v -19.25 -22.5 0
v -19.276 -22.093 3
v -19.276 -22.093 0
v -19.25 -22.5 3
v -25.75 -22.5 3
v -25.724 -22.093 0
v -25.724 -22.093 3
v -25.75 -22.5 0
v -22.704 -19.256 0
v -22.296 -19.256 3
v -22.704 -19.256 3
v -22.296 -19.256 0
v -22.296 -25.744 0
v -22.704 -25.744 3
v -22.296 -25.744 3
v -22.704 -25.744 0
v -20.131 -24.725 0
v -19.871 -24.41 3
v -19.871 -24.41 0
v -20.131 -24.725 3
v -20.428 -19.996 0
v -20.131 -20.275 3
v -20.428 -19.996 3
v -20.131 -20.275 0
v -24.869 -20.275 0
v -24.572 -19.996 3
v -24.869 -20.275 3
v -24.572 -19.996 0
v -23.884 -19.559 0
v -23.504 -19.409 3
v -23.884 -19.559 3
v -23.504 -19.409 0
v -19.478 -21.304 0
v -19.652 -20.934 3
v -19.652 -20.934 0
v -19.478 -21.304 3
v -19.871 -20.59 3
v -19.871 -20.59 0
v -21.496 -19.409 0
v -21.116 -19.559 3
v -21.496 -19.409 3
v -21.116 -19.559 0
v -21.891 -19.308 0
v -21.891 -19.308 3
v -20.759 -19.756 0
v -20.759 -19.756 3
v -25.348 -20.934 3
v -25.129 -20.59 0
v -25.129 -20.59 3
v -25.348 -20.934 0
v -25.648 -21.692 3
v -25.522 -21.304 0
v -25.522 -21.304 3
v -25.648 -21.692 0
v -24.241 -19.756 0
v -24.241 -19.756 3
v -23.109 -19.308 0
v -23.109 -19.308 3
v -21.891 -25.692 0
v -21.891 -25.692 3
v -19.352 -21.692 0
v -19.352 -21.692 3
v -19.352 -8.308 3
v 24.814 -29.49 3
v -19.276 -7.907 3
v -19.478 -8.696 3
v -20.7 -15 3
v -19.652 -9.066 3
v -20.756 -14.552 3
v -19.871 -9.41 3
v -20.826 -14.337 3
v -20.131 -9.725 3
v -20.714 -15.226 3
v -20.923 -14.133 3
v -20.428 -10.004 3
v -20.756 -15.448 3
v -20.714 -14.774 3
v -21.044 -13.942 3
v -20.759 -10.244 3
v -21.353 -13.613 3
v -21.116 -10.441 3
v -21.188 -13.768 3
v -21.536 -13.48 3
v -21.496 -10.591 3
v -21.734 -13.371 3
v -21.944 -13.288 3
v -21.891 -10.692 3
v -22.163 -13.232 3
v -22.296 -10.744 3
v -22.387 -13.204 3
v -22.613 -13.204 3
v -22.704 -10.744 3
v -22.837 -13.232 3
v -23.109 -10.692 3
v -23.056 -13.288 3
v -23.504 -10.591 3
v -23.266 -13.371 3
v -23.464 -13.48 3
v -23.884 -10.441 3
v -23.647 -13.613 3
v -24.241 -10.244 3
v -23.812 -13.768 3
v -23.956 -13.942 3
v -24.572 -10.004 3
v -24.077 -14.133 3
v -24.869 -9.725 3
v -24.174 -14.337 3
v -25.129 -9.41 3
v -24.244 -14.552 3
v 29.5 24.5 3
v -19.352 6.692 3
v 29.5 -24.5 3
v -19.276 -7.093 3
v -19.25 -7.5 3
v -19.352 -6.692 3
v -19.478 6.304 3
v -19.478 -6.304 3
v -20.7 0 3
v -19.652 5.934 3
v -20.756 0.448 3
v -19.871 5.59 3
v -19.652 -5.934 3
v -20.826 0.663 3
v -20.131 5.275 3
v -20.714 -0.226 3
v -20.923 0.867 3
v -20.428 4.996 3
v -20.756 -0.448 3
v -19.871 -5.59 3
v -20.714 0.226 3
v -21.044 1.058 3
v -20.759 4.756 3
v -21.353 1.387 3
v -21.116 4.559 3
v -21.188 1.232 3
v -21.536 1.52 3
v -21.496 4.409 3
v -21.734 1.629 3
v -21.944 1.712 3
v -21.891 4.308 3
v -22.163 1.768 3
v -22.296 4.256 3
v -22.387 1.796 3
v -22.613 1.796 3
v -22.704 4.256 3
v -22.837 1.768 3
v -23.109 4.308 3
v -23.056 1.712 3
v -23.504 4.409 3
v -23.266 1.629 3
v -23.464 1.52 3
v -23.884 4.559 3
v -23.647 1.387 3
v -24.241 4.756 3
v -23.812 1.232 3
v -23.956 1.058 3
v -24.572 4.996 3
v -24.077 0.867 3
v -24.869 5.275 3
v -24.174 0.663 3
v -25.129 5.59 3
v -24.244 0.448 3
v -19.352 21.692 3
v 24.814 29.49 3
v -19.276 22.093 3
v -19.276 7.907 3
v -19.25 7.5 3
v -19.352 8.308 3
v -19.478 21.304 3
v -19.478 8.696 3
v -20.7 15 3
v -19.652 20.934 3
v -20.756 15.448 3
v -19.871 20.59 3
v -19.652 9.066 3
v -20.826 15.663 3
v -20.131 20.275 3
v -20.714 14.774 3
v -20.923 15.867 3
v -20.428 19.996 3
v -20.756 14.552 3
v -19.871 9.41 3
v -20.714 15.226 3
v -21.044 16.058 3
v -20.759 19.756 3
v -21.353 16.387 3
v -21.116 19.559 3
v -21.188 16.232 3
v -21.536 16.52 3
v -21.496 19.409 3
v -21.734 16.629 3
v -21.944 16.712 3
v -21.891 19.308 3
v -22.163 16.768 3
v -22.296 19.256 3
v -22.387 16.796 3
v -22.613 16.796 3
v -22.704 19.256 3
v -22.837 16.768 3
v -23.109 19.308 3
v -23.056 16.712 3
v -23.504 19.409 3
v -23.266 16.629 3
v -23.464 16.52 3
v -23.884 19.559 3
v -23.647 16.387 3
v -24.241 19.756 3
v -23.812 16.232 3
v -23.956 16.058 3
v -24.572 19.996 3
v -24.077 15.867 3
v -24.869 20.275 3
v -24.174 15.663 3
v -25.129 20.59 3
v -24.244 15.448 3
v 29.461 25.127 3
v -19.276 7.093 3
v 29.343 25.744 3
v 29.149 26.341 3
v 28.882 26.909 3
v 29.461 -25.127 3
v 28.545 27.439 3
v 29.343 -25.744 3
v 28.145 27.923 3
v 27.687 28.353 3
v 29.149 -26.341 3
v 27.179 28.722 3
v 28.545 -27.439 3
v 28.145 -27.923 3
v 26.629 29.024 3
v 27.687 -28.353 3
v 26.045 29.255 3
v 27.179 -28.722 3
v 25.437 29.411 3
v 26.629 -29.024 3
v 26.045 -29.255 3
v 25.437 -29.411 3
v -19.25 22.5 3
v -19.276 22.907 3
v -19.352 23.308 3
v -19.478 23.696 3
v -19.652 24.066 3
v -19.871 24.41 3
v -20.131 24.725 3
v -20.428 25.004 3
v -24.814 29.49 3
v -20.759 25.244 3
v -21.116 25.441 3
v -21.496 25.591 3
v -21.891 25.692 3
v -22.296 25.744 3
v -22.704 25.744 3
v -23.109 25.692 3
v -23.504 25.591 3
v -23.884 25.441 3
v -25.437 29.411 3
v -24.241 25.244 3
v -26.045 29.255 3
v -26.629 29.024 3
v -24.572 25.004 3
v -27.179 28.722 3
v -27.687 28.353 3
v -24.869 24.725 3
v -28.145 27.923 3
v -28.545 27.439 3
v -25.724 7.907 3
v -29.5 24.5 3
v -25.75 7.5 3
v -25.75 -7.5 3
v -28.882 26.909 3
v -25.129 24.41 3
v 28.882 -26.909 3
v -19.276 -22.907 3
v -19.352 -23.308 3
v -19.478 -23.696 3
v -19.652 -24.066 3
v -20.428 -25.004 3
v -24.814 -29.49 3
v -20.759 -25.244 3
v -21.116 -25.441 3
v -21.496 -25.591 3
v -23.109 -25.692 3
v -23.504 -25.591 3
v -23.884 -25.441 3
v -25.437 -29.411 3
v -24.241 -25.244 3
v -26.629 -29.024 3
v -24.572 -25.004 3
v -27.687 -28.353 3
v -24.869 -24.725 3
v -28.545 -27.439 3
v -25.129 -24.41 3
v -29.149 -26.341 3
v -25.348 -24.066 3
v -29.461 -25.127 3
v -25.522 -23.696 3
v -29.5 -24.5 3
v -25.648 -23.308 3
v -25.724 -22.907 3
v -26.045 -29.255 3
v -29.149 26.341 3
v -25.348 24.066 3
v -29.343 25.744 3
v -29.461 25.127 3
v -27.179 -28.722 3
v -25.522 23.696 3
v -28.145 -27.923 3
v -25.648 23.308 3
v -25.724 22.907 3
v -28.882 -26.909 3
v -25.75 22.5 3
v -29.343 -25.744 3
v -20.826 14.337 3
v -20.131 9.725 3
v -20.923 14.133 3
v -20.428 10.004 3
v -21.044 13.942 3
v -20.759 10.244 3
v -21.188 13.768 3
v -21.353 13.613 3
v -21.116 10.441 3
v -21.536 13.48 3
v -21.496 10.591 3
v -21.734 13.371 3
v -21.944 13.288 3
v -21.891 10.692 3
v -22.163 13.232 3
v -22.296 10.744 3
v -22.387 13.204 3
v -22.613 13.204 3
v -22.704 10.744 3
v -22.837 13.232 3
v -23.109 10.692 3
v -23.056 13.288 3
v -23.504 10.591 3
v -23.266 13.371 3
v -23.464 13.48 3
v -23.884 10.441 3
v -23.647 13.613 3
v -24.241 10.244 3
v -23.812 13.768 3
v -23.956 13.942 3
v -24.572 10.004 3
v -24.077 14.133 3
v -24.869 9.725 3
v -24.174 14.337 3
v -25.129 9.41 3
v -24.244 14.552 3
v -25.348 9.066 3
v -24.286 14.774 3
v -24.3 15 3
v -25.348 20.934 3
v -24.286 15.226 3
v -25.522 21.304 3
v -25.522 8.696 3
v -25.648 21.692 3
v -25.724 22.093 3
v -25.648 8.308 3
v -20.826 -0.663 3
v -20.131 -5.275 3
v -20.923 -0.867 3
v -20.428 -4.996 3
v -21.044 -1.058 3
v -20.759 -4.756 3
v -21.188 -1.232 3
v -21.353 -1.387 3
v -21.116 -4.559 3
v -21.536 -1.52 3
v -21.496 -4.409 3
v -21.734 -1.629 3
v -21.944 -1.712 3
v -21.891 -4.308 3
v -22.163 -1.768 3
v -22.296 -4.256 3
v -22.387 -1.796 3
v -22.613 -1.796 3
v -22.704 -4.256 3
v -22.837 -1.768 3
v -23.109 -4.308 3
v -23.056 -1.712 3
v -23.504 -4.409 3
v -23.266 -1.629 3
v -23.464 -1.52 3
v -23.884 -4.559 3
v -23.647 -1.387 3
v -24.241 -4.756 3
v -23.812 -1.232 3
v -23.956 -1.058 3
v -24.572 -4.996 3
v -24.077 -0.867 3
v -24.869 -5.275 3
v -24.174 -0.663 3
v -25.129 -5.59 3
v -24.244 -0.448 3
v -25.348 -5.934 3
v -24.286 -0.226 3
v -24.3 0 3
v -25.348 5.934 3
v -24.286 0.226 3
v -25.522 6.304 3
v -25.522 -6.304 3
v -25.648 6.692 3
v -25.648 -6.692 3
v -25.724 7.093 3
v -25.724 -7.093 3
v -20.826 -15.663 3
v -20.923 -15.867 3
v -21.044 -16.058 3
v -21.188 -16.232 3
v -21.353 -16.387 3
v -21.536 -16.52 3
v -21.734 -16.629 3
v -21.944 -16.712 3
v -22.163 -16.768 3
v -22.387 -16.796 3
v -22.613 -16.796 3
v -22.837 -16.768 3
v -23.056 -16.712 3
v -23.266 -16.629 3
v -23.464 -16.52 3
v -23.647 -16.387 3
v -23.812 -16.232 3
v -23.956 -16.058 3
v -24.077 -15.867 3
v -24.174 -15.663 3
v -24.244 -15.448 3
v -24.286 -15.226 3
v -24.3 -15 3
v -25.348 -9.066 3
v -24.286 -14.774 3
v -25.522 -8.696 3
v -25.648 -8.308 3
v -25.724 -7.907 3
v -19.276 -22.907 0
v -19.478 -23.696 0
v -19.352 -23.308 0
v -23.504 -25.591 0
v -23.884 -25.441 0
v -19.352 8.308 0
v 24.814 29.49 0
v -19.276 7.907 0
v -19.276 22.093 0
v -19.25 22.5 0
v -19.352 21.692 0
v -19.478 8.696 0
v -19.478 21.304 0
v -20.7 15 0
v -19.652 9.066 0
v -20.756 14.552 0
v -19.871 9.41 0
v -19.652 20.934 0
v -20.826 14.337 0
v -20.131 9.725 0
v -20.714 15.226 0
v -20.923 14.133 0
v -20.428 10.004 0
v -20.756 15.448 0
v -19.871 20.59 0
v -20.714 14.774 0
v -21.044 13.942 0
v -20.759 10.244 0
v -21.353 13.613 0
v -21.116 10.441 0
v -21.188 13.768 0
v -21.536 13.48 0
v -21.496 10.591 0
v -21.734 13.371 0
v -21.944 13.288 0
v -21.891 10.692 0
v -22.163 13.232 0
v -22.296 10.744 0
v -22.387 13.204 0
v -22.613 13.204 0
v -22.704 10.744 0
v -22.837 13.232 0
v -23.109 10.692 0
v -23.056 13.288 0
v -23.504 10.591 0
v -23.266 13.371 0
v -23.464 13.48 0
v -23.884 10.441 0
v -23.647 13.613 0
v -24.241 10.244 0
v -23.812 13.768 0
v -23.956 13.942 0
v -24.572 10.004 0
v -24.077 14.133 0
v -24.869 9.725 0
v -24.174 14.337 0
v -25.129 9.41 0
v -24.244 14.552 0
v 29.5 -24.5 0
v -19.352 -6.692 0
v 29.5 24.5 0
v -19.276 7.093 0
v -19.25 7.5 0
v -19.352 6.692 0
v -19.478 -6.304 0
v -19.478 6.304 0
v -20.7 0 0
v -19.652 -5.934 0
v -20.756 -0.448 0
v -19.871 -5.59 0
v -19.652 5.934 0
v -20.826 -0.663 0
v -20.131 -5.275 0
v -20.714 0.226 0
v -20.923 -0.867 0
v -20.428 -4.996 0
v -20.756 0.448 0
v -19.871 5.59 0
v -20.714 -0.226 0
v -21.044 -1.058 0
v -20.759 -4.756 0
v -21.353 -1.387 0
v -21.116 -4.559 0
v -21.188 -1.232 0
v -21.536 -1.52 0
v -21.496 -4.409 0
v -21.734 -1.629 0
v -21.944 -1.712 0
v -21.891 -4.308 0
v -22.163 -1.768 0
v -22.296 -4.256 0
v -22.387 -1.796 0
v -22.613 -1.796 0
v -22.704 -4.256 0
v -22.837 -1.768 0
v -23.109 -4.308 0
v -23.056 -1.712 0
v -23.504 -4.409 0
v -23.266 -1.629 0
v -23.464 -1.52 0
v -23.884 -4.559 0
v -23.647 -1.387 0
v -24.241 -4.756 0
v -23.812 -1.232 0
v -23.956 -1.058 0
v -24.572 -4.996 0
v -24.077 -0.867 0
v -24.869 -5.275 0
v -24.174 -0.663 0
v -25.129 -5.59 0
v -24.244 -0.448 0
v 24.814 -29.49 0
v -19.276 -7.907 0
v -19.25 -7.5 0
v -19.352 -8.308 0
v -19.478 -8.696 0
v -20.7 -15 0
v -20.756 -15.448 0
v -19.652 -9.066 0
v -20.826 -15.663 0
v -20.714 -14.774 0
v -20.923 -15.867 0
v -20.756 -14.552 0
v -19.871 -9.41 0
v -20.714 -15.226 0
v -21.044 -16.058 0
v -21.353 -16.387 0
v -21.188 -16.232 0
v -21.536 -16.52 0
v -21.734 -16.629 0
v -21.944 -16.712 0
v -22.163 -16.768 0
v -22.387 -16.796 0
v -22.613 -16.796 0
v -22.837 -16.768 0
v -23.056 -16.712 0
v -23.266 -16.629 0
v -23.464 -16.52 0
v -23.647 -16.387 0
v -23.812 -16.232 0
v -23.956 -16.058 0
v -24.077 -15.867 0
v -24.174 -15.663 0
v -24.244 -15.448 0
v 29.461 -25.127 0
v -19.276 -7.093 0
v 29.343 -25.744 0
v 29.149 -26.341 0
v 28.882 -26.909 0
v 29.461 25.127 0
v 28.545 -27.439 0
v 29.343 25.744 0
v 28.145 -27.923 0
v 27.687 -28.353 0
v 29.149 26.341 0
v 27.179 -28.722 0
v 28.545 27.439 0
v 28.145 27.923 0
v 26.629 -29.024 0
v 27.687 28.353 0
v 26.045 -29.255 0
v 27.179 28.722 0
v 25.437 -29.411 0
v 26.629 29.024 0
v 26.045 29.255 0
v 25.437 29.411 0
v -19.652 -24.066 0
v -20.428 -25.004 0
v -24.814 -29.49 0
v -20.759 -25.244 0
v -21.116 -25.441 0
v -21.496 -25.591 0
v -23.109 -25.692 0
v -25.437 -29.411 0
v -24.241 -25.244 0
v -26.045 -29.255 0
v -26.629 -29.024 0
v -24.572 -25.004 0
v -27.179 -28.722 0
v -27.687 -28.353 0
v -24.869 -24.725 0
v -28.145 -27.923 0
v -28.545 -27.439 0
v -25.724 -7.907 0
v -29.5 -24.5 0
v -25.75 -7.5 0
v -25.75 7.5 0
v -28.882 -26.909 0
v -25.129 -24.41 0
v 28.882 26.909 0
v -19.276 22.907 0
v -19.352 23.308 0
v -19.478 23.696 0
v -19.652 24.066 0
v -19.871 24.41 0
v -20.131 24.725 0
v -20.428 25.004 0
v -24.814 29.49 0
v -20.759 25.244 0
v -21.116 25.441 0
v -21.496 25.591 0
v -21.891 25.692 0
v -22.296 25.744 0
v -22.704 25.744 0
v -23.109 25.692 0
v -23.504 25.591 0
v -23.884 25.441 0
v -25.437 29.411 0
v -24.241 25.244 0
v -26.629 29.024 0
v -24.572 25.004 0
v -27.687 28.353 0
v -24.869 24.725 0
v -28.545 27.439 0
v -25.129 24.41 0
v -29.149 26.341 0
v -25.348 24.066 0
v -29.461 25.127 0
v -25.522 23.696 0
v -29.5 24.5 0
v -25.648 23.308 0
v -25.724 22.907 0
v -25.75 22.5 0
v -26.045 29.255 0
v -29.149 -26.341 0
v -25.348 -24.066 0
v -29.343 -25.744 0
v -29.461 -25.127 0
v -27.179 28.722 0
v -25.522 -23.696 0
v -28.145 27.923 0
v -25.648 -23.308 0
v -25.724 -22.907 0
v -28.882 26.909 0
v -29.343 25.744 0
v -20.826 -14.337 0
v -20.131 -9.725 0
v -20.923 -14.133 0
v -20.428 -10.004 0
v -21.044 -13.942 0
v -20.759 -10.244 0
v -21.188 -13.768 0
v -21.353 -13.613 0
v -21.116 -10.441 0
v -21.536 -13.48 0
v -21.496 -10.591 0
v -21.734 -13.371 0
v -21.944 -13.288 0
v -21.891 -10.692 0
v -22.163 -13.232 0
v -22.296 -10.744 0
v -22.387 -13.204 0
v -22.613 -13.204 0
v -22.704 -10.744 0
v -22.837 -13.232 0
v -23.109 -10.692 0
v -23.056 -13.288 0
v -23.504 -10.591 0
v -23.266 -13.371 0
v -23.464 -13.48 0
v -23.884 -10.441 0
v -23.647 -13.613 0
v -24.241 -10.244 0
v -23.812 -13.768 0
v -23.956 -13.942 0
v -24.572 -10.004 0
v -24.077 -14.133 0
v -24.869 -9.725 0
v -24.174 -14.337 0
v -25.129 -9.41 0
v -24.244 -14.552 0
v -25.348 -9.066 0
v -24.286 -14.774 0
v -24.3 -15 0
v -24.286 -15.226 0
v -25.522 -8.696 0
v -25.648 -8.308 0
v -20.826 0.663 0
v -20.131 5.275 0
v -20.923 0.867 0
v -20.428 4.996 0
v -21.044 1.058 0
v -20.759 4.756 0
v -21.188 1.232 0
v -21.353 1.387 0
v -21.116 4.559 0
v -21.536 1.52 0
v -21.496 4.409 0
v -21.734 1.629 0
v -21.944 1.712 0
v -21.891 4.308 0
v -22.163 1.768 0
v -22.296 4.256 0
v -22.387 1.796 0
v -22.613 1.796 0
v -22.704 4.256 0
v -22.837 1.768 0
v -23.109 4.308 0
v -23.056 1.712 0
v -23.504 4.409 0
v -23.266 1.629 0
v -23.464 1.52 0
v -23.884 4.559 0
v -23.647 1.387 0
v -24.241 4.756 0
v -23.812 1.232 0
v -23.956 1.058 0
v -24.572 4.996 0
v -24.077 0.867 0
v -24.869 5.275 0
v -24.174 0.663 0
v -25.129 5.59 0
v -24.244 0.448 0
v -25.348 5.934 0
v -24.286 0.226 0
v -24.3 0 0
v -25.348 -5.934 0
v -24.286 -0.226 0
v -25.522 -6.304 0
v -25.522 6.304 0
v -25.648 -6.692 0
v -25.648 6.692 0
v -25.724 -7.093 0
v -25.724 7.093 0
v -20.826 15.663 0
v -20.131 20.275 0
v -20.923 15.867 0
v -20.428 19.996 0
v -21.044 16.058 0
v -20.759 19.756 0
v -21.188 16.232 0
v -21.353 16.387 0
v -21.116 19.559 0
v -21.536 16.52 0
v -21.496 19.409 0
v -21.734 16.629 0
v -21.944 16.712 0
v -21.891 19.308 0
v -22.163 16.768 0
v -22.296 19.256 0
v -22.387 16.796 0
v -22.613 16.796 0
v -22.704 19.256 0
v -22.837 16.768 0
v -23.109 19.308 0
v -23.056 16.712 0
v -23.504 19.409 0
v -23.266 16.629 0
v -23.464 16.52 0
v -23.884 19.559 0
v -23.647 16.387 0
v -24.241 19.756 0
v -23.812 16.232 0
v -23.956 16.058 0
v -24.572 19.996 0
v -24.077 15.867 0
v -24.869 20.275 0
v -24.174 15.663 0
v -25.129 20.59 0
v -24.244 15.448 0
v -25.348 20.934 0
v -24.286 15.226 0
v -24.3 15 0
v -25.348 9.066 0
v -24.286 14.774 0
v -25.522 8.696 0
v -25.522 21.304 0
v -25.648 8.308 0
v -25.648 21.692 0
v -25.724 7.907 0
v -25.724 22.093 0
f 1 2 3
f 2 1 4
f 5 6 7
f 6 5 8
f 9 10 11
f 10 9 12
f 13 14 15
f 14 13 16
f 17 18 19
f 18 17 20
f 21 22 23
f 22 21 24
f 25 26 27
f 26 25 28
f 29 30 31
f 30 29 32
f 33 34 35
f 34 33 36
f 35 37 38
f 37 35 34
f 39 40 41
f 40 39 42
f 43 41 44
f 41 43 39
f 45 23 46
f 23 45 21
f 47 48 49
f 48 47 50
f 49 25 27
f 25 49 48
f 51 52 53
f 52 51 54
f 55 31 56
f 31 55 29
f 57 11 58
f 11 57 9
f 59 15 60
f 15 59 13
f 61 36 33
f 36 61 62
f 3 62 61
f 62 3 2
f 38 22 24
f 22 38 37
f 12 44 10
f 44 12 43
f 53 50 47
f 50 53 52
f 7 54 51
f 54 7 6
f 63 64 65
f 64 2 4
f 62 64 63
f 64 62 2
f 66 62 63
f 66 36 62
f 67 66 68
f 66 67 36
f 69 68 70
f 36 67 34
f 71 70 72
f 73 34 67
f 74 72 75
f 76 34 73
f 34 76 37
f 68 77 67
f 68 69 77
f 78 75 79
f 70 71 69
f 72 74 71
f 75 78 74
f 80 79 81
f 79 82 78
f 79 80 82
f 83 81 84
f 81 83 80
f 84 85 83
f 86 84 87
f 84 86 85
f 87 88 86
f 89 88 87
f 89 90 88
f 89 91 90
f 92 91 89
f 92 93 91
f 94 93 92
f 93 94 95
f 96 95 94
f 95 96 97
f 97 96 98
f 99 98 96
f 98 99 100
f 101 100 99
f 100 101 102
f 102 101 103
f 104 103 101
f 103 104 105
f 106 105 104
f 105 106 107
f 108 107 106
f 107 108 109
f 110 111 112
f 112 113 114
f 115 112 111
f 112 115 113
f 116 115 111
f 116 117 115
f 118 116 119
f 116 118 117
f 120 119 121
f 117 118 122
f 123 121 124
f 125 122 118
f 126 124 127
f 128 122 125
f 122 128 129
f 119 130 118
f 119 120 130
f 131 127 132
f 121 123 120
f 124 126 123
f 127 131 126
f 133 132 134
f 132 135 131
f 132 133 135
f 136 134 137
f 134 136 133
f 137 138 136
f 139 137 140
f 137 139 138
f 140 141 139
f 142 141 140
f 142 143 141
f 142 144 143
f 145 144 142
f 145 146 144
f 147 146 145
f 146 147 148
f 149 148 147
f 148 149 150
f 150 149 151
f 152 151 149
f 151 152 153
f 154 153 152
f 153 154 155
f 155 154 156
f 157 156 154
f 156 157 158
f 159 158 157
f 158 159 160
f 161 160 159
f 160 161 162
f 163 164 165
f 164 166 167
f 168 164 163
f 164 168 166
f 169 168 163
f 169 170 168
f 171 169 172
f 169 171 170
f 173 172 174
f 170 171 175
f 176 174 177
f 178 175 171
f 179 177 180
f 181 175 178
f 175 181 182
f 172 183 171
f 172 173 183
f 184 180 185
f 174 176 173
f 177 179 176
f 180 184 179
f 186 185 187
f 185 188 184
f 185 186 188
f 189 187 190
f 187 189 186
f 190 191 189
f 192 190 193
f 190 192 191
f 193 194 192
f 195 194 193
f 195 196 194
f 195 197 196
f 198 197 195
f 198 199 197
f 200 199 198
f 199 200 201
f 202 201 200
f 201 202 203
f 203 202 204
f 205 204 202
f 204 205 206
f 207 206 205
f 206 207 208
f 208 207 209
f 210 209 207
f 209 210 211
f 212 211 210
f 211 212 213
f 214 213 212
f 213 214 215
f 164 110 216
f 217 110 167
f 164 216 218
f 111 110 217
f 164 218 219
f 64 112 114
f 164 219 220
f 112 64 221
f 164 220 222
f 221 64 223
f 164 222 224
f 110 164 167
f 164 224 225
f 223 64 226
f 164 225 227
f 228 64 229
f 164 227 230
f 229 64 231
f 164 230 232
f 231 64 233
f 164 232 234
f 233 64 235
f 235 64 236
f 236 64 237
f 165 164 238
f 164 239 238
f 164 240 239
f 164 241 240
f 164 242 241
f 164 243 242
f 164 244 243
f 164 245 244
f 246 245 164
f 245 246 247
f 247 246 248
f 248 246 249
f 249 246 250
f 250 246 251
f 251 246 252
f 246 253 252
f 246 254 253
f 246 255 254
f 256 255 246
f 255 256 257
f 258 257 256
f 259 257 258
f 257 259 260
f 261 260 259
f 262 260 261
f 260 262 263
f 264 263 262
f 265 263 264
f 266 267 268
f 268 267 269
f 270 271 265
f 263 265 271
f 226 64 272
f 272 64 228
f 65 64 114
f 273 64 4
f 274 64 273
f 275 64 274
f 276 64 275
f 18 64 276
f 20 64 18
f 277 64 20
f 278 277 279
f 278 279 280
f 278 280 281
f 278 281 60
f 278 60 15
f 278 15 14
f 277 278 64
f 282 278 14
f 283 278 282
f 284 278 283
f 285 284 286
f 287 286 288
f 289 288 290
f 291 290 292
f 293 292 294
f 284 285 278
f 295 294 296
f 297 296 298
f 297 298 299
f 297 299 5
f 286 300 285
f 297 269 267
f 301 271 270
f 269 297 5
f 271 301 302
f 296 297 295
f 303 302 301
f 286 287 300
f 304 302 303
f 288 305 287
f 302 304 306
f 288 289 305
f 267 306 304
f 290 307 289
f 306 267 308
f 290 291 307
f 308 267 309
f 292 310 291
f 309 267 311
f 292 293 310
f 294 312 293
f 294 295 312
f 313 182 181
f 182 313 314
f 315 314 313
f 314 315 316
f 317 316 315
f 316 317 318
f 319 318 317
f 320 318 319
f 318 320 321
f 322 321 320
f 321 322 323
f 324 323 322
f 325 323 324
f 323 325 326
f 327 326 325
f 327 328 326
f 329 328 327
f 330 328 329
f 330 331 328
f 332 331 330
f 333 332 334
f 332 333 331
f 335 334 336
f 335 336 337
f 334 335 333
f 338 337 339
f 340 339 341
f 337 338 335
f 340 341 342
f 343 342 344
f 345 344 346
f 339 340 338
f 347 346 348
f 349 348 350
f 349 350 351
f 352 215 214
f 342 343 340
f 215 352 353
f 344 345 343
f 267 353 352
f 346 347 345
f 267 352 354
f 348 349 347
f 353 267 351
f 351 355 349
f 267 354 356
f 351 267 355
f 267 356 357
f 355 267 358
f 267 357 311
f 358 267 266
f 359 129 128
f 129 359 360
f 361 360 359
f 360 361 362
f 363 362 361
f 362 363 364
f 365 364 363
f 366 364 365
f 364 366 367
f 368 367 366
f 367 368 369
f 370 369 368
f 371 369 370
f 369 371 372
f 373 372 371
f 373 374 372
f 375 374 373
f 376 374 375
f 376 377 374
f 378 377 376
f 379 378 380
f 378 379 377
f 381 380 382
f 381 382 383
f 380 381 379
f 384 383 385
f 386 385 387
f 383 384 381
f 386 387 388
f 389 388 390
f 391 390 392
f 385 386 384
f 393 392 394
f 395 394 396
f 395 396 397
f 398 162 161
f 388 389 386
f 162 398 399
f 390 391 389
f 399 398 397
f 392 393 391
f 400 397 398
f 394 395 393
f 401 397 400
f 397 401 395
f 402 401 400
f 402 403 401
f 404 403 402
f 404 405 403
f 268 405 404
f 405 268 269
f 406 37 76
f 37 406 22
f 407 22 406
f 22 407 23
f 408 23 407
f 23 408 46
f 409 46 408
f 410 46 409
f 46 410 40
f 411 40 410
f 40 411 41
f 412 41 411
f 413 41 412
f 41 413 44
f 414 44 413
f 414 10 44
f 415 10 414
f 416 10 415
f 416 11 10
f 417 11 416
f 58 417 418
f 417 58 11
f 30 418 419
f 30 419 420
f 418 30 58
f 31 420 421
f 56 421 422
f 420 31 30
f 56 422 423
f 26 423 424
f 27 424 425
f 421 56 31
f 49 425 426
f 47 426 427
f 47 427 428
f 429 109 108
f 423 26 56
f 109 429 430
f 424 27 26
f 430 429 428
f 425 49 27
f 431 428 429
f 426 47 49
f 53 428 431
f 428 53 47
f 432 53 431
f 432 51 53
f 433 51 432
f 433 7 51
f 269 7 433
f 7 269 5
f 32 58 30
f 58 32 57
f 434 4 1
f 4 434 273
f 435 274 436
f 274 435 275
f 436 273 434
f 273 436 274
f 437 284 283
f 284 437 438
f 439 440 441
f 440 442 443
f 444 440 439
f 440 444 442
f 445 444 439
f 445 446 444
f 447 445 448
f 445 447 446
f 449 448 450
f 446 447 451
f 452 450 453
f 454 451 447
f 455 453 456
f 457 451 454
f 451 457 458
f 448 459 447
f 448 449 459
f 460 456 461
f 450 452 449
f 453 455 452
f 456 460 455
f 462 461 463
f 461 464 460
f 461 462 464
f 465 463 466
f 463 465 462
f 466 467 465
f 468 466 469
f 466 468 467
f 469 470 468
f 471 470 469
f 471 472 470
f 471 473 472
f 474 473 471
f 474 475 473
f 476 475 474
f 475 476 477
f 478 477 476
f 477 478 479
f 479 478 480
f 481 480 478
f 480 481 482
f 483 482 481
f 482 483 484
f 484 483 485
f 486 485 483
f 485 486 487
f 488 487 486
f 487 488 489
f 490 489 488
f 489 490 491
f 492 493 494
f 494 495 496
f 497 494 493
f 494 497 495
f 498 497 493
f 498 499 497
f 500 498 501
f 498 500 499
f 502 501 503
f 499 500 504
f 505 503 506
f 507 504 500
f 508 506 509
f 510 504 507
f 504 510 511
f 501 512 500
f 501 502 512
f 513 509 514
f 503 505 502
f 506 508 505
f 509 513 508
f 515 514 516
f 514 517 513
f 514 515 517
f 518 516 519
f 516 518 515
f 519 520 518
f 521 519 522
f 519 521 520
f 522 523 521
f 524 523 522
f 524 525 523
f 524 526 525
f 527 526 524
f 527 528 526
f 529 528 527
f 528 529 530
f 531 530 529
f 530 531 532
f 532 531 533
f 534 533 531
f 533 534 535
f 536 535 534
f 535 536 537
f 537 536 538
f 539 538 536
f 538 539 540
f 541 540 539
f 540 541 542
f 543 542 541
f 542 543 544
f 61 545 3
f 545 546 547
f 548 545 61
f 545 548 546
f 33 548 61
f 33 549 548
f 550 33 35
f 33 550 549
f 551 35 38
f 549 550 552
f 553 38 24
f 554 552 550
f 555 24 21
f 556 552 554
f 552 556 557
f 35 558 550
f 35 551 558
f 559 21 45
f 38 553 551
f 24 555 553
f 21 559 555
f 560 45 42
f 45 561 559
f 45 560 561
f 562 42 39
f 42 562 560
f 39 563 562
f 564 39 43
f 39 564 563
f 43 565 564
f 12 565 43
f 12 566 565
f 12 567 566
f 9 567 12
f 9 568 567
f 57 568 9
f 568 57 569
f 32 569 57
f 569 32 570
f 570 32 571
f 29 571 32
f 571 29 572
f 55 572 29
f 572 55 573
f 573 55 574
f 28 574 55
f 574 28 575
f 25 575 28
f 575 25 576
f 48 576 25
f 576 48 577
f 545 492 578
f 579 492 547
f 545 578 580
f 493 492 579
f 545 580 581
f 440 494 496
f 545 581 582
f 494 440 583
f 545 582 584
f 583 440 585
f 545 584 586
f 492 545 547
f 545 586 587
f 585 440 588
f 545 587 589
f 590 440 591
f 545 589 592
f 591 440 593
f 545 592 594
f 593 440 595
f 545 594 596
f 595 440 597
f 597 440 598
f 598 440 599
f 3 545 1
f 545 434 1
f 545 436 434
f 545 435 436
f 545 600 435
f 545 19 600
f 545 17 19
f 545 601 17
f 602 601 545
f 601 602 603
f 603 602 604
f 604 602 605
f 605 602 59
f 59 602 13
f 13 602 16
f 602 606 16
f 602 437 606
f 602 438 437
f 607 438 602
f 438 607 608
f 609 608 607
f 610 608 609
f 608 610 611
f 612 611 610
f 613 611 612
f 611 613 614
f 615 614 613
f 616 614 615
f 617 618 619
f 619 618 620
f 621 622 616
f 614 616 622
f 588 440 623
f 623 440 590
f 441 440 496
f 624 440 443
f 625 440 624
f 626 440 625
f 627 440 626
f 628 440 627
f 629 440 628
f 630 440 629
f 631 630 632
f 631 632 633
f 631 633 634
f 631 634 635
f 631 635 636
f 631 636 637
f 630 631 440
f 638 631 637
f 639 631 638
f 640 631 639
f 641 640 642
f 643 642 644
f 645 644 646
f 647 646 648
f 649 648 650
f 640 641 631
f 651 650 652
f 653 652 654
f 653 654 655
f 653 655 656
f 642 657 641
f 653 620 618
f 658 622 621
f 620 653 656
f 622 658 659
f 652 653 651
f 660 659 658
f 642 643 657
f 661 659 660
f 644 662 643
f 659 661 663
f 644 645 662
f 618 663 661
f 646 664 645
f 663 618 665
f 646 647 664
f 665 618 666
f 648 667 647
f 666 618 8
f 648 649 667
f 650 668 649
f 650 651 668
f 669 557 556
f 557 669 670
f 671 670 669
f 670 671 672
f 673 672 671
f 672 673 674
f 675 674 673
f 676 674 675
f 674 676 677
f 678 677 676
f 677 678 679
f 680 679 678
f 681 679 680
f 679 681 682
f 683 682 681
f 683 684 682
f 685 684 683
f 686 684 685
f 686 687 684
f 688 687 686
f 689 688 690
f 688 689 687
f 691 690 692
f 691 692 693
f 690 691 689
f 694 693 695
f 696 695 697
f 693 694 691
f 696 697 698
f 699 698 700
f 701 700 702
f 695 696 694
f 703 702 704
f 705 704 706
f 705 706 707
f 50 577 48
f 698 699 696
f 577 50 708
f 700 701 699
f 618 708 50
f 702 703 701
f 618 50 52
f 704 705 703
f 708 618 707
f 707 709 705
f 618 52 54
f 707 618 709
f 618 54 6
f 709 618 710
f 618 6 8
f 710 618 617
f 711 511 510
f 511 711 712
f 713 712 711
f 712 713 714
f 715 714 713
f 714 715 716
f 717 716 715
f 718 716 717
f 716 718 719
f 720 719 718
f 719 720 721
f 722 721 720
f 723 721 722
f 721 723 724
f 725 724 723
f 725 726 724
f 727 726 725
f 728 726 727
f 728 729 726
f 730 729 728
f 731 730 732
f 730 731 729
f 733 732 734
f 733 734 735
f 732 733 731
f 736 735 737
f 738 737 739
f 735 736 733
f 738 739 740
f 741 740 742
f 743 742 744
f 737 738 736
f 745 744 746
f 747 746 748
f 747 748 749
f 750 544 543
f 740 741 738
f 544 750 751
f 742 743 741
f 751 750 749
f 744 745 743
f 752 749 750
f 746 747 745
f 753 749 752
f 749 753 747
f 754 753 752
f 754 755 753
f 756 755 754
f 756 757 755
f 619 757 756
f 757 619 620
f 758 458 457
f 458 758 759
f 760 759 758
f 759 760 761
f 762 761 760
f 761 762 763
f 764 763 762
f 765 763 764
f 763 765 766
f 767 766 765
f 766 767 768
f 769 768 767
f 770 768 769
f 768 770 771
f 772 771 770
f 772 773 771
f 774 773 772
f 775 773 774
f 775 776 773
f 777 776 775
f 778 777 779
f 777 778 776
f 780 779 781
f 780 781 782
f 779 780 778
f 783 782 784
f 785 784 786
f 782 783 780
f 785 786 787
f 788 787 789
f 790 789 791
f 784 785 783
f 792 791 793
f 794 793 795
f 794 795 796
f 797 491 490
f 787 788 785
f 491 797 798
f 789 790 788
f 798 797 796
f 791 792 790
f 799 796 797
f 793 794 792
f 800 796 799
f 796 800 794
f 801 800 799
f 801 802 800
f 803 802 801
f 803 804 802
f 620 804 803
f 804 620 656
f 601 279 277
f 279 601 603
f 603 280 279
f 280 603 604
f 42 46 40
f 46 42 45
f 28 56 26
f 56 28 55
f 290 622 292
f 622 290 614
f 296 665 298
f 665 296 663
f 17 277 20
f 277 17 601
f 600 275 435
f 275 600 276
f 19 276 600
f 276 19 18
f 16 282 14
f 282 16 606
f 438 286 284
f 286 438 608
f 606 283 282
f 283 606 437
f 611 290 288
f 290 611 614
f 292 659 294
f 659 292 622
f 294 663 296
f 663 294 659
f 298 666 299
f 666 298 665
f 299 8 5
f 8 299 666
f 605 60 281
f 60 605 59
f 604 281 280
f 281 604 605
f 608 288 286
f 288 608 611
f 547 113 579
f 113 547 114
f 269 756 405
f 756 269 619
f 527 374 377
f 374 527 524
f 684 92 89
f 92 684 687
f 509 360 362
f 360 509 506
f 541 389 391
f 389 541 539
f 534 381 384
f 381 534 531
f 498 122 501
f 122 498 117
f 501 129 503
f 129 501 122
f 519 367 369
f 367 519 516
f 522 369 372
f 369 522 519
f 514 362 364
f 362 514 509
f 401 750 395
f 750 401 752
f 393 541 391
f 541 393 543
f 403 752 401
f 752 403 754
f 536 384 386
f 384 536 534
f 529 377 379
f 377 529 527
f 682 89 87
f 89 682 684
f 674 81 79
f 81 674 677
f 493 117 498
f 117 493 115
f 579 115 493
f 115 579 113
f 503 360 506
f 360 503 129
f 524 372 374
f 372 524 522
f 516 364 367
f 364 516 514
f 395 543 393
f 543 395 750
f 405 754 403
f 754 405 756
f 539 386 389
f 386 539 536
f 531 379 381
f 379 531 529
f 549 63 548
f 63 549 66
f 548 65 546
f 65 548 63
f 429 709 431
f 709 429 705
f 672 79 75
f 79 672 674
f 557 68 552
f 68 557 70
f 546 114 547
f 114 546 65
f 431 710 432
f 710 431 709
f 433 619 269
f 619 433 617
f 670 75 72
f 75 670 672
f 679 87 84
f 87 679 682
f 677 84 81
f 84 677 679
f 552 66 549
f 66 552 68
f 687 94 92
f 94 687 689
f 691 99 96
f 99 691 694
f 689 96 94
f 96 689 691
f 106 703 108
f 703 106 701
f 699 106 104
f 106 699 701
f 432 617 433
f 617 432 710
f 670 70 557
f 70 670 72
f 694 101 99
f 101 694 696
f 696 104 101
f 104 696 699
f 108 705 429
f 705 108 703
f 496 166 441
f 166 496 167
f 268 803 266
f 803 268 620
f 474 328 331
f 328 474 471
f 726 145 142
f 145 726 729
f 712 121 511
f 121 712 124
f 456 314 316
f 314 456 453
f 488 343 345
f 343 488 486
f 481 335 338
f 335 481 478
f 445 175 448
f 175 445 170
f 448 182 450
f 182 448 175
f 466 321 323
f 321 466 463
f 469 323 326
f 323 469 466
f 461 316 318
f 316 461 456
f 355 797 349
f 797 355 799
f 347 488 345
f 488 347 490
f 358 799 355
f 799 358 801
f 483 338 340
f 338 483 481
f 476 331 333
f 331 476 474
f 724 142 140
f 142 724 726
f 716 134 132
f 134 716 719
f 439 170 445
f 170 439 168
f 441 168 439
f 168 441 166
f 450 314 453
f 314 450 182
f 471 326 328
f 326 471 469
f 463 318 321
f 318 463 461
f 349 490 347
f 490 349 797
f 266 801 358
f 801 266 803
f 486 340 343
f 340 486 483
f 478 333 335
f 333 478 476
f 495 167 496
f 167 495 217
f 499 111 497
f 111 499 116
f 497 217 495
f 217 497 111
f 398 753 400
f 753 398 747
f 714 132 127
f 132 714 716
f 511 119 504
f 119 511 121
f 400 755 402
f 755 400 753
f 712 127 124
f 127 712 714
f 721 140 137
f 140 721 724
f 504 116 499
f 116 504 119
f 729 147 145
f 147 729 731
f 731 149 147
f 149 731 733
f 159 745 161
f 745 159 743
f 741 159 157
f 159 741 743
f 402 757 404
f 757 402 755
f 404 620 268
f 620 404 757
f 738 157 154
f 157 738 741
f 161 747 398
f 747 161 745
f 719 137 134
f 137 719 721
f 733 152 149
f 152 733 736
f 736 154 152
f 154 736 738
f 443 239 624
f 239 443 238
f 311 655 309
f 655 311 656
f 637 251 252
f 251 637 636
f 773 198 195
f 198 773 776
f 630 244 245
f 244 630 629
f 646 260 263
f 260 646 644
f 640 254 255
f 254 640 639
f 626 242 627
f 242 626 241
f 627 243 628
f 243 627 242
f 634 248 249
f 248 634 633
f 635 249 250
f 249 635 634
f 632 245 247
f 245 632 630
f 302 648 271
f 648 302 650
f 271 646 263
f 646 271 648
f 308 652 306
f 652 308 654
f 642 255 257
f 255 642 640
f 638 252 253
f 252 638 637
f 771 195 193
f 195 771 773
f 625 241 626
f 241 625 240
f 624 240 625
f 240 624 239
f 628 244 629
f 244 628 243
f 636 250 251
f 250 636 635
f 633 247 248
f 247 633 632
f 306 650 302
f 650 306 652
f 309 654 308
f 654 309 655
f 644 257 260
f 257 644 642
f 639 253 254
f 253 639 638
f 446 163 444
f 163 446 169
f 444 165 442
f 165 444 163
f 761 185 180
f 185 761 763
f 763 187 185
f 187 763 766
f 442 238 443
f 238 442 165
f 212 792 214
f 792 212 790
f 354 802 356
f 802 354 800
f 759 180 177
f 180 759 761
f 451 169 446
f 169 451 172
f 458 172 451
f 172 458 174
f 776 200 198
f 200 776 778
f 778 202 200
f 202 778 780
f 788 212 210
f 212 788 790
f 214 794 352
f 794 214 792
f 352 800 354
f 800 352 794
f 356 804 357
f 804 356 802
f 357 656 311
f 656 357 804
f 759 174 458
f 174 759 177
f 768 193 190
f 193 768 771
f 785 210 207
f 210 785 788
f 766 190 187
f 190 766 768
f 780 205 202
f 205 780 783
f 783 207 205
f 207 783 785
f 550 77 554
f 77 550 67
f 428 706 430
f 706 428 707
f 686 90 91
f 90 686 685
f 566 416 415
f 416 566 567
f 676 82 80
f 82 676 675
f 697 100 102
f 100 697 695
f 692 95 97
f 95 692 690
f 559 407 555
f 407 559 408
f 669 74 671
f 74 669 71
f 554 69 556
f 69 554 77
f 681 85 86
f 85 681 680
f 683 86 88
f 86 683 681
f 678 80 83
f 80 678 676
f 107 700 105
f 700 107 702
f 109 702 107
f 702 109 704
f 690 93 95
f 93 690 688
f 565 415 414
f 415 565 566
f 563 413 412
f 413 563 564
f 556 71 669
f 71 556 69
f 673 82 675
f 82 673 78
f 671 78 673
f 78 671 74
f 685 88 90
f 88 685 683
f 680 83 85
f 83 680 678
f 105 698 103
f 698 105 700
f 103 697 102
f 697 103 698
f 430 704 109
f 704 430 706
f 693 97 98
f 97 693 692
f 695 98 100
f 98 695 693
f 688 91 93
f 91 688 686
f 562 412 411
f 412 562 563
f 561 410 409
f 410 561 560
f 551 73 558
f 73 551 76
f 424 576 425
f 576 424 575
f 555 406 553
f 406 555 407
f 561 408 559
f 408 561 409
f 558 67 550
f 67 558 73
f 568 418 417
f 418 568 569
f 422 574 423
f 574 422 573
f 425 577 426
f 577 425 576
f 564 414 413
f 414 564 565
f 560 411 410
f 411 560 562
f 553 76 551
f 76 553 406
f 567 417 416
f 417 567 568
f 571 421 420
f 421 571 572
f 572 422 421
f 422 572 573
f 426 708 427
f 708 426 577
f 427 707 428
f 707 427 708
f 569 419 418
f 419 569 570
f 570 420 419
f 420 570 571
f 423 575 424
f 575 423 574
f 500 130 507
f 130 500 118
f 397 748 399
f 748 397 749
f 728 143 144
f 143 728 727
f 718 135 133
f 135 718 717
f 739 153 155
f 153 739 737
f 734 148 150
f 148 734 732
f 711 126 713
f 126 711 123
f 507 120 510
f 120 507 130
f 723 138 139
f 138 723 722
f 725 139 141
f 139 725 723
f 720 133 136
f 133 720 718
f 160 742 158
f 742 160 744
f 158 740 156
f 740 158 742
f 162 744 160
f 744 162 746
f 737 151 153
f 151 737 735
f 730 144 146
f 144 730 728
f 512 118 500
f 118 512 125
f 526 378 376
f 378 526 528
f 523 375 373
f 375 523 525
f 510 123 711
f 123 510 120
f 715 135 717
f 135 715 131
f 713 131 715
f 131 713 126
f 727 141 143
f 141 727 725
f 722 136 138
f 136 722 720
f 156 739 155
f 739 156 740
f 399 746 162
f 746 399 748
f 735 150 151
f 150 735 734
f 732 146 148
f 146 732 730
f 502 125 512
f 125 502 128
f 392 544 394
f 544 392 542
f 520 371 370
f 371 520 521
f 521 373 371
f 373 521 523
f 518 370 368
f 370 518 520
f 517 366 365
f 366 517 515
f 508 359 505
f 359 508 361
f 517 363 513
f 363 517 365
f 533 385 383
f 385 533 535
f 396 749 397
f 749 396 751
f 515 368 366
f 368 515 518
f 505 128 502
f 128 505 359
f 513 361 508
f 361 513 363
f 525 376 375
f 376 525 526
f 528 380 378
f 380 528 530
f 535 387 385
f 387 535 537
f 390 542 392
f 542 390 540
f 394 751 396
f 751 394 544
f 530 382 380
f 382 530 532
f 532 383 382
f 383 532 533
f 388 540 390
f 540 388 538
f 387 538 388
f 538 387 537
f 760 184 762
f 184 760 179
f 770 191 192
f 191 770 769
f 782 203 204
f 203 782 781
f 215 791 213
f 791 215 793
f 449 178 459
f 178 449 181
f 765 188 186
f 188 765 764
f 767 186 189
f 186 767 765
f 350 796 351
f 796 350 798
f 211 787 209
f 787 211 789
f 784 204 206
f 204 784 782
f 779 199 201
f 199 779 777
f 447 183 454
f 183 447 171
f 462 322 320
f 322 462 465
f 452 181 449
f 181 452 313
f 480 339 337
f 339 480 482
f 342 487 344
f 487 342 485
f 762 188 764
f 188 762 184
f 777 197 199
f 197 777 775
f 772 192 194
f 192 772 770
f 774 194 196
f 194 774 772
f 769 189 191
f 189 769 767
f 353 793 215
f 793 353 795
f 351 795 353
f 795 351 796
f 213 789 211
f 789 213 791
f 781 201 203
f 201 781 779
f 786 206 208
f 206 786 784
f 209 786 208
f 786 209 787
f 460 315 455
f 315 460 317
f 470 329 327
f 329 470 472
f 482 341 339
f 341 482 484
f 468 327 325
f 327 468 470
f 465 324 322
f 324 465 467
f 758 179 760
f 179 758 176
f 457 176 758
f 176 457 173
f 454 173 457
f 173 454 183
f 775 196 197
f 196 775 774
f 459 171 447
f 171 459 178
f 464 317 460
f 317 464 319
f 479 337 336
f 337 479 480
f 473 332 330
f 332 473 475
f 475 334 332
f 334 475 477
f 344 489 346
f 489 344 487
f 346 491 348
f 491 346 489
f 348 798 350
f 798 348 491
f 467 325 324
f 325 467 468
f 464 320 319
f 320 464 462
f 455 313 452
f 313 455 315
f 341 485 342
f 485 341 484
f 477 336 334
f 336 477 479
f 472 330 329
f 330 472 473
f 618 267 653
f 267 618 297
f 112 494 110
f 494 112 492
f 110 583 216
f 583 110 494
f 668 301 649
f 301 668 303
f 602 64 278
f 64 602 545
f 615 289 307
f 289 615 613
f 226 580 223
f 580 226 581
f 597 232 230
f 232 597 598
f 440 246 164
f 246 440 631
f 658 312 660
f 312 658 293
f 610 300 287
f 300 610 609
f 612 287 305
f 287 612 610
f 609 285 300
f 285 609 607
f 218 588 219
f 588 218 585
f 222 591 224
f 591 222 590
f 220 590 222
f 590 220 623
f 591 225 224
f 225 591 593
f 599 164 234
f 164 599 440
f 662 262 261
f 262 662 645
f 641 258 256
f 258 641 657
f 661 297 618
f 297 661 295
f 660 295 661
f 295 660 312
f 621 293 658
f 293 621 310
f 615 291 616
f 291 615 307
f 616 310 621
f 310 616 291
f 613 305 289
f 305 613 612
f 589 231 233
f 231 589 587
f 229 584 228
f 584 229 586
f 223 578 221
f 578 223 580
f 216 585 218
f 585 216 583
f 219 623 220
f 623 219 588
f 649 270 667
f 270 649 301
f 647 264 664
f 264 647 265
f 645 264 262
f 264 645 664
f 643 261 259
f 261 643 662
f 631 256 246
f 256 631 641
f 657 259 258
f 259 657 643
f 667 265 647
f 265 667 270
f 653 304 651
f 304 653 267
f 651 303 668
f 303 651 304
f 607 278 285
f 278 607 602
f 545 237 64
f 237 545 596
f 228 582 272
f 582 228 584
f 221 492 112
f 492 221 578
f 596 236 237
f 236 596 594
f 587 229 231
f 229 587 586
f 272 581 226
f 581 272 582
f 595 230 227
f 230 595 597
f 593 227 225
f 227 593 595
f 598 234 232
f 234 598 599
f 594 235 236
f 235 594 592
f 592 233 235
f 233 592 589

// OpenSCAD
$fn = 50;


difference() {
	union() {
		hull() {
			translate(v = [-24.5000000000, 24.5000000000, 0]) {
				cylinder(h = 3, r = 5);
			}
			translate(v = [24.5000000000, 24.5000000000, 0]) {
				cylinder(h = 3, r = 5);
			}
			translate(v = [-24.5000000000, -24.5000000000, 0]) {
				cylinder(h = 3, r = 5);
			}
			translate(v = [24.5000000000, -24.5000000000, 0]) {
				cylinder(h = 3, r = 5);
			}
		}
	}
	union() {
		translate(v = [-22.5000000000, -22.5000000000, 0]) {
			cylinder(h = 3, r = 3.2500000000);
		}
		translate(v = [-22.5000000000, -7.5000000000, 0]) {
			cylinder(h = 3, r = 3.2500000000);
		}
		translate(v = [-22.5000000000, 7.5000000000, 0]) {
			cylinder(h = 3, r = 3.2500000000);
		}
		translate(v = [-22.5000000000, 22.5000000000, 0]) {
			cylinder(h = 3, r = 3.2500000000);
		}
		translate(v = [-22.5000000000, -22.5000000000, 0]) {
			cylinder(h = 3, r = 1.8000000000);
		}
		translate(v = [-22.5000000000, -15.0000000000, 0]) {
			cylinder(h = 3, r = 1.8000000000);
		}
		translate(v = [-22.5000000000, -7.5000000000, 0]) {
			cylinder(h = 3, r = 1.8000000000);
		}
		translate(v = [-22.5000000000, 0.0000000000, 0]) {
			cylinder(h = 3, r = 1.8000000000);
		}
		translate(v = [-22.5000000000, 7.5000000000, 0]) {
			cylinder(h = 3, r = 1.8000000000);
		}
		translate(v = [-22.5000000000, 15.0000000000, 0]) {
			cylinder(h = 3, r = 1.8000000000);
		}
		translate(v = [-22.5000000000, 22.5000000000, 0]) {
			cylinder(h = 3, r = 1.8000000000);
		}
		translate(v = [-22.5000000000, -22.5000000000, 0]) {
			cylinder(h = 3, r = 1.8000000000);
		}
		translate(v = [-22.5000000000, -15.0000000000, 0]) {
			cylinder(h = 3, r = 1.8000000000);
		}
		translate(v = [-22.5000000000, -7.5000000000, 0]) {
			cylinder(h = 3, r = 1.8000000000);
		}
		translate(v = [-22.5000000000, 0.0000000000, 0]) {
			cylinder(h = 3, r = 1.8000000000);
		}
		translate(v = [-22.5000000000, 7.5000000000, 0]) {
			cylinder(h = 3, r = 1.8000000000);
		}
		translate(v = [-22.5000000000, 15.0000000000, 0]) {
			cylinder(h = 3, r = 1.8000000000);
		}
		translate(v = [-22.5000000000, 22.5000000000, 0]) {
			cylinder(h = 3, r = 1.8000000000);
		}
		translate(v = [-22.5000000000, -22.5000000000, 0]) {
			cylinder(h = 3, r = 1.8000000000);
		}
		translate(v = [-22.5000000000, -15.0000000000, 0]) {
			cylinder(h = 3, r = 1.8000000000);
		}
		translate(v = [-22.5000000000, -7.5000000000, 0]) {
			cylinder(h = 3, r = 1.8000000000);
		}
		translate(v = [-22.5000000000, 0.0000000000, 0]) {
			cylinder(h = 3, r = 1.8000000000);
		}
		translate(v = [-22.5000000000, 7.5000000000, 0]) {
			cylinder(h = 3, r = 1.8000000000);
		}
		translate(v = [-22.5000000000, 15.0000000000, 0]) {
			cylinder(h = 3, r = 1.8000000000);
		}
		translate(v = [-22.5000000000, 22.5000000000, 0]) {
			cylinder(h = 3, r = 1.8000000000);
		}
	}
}
